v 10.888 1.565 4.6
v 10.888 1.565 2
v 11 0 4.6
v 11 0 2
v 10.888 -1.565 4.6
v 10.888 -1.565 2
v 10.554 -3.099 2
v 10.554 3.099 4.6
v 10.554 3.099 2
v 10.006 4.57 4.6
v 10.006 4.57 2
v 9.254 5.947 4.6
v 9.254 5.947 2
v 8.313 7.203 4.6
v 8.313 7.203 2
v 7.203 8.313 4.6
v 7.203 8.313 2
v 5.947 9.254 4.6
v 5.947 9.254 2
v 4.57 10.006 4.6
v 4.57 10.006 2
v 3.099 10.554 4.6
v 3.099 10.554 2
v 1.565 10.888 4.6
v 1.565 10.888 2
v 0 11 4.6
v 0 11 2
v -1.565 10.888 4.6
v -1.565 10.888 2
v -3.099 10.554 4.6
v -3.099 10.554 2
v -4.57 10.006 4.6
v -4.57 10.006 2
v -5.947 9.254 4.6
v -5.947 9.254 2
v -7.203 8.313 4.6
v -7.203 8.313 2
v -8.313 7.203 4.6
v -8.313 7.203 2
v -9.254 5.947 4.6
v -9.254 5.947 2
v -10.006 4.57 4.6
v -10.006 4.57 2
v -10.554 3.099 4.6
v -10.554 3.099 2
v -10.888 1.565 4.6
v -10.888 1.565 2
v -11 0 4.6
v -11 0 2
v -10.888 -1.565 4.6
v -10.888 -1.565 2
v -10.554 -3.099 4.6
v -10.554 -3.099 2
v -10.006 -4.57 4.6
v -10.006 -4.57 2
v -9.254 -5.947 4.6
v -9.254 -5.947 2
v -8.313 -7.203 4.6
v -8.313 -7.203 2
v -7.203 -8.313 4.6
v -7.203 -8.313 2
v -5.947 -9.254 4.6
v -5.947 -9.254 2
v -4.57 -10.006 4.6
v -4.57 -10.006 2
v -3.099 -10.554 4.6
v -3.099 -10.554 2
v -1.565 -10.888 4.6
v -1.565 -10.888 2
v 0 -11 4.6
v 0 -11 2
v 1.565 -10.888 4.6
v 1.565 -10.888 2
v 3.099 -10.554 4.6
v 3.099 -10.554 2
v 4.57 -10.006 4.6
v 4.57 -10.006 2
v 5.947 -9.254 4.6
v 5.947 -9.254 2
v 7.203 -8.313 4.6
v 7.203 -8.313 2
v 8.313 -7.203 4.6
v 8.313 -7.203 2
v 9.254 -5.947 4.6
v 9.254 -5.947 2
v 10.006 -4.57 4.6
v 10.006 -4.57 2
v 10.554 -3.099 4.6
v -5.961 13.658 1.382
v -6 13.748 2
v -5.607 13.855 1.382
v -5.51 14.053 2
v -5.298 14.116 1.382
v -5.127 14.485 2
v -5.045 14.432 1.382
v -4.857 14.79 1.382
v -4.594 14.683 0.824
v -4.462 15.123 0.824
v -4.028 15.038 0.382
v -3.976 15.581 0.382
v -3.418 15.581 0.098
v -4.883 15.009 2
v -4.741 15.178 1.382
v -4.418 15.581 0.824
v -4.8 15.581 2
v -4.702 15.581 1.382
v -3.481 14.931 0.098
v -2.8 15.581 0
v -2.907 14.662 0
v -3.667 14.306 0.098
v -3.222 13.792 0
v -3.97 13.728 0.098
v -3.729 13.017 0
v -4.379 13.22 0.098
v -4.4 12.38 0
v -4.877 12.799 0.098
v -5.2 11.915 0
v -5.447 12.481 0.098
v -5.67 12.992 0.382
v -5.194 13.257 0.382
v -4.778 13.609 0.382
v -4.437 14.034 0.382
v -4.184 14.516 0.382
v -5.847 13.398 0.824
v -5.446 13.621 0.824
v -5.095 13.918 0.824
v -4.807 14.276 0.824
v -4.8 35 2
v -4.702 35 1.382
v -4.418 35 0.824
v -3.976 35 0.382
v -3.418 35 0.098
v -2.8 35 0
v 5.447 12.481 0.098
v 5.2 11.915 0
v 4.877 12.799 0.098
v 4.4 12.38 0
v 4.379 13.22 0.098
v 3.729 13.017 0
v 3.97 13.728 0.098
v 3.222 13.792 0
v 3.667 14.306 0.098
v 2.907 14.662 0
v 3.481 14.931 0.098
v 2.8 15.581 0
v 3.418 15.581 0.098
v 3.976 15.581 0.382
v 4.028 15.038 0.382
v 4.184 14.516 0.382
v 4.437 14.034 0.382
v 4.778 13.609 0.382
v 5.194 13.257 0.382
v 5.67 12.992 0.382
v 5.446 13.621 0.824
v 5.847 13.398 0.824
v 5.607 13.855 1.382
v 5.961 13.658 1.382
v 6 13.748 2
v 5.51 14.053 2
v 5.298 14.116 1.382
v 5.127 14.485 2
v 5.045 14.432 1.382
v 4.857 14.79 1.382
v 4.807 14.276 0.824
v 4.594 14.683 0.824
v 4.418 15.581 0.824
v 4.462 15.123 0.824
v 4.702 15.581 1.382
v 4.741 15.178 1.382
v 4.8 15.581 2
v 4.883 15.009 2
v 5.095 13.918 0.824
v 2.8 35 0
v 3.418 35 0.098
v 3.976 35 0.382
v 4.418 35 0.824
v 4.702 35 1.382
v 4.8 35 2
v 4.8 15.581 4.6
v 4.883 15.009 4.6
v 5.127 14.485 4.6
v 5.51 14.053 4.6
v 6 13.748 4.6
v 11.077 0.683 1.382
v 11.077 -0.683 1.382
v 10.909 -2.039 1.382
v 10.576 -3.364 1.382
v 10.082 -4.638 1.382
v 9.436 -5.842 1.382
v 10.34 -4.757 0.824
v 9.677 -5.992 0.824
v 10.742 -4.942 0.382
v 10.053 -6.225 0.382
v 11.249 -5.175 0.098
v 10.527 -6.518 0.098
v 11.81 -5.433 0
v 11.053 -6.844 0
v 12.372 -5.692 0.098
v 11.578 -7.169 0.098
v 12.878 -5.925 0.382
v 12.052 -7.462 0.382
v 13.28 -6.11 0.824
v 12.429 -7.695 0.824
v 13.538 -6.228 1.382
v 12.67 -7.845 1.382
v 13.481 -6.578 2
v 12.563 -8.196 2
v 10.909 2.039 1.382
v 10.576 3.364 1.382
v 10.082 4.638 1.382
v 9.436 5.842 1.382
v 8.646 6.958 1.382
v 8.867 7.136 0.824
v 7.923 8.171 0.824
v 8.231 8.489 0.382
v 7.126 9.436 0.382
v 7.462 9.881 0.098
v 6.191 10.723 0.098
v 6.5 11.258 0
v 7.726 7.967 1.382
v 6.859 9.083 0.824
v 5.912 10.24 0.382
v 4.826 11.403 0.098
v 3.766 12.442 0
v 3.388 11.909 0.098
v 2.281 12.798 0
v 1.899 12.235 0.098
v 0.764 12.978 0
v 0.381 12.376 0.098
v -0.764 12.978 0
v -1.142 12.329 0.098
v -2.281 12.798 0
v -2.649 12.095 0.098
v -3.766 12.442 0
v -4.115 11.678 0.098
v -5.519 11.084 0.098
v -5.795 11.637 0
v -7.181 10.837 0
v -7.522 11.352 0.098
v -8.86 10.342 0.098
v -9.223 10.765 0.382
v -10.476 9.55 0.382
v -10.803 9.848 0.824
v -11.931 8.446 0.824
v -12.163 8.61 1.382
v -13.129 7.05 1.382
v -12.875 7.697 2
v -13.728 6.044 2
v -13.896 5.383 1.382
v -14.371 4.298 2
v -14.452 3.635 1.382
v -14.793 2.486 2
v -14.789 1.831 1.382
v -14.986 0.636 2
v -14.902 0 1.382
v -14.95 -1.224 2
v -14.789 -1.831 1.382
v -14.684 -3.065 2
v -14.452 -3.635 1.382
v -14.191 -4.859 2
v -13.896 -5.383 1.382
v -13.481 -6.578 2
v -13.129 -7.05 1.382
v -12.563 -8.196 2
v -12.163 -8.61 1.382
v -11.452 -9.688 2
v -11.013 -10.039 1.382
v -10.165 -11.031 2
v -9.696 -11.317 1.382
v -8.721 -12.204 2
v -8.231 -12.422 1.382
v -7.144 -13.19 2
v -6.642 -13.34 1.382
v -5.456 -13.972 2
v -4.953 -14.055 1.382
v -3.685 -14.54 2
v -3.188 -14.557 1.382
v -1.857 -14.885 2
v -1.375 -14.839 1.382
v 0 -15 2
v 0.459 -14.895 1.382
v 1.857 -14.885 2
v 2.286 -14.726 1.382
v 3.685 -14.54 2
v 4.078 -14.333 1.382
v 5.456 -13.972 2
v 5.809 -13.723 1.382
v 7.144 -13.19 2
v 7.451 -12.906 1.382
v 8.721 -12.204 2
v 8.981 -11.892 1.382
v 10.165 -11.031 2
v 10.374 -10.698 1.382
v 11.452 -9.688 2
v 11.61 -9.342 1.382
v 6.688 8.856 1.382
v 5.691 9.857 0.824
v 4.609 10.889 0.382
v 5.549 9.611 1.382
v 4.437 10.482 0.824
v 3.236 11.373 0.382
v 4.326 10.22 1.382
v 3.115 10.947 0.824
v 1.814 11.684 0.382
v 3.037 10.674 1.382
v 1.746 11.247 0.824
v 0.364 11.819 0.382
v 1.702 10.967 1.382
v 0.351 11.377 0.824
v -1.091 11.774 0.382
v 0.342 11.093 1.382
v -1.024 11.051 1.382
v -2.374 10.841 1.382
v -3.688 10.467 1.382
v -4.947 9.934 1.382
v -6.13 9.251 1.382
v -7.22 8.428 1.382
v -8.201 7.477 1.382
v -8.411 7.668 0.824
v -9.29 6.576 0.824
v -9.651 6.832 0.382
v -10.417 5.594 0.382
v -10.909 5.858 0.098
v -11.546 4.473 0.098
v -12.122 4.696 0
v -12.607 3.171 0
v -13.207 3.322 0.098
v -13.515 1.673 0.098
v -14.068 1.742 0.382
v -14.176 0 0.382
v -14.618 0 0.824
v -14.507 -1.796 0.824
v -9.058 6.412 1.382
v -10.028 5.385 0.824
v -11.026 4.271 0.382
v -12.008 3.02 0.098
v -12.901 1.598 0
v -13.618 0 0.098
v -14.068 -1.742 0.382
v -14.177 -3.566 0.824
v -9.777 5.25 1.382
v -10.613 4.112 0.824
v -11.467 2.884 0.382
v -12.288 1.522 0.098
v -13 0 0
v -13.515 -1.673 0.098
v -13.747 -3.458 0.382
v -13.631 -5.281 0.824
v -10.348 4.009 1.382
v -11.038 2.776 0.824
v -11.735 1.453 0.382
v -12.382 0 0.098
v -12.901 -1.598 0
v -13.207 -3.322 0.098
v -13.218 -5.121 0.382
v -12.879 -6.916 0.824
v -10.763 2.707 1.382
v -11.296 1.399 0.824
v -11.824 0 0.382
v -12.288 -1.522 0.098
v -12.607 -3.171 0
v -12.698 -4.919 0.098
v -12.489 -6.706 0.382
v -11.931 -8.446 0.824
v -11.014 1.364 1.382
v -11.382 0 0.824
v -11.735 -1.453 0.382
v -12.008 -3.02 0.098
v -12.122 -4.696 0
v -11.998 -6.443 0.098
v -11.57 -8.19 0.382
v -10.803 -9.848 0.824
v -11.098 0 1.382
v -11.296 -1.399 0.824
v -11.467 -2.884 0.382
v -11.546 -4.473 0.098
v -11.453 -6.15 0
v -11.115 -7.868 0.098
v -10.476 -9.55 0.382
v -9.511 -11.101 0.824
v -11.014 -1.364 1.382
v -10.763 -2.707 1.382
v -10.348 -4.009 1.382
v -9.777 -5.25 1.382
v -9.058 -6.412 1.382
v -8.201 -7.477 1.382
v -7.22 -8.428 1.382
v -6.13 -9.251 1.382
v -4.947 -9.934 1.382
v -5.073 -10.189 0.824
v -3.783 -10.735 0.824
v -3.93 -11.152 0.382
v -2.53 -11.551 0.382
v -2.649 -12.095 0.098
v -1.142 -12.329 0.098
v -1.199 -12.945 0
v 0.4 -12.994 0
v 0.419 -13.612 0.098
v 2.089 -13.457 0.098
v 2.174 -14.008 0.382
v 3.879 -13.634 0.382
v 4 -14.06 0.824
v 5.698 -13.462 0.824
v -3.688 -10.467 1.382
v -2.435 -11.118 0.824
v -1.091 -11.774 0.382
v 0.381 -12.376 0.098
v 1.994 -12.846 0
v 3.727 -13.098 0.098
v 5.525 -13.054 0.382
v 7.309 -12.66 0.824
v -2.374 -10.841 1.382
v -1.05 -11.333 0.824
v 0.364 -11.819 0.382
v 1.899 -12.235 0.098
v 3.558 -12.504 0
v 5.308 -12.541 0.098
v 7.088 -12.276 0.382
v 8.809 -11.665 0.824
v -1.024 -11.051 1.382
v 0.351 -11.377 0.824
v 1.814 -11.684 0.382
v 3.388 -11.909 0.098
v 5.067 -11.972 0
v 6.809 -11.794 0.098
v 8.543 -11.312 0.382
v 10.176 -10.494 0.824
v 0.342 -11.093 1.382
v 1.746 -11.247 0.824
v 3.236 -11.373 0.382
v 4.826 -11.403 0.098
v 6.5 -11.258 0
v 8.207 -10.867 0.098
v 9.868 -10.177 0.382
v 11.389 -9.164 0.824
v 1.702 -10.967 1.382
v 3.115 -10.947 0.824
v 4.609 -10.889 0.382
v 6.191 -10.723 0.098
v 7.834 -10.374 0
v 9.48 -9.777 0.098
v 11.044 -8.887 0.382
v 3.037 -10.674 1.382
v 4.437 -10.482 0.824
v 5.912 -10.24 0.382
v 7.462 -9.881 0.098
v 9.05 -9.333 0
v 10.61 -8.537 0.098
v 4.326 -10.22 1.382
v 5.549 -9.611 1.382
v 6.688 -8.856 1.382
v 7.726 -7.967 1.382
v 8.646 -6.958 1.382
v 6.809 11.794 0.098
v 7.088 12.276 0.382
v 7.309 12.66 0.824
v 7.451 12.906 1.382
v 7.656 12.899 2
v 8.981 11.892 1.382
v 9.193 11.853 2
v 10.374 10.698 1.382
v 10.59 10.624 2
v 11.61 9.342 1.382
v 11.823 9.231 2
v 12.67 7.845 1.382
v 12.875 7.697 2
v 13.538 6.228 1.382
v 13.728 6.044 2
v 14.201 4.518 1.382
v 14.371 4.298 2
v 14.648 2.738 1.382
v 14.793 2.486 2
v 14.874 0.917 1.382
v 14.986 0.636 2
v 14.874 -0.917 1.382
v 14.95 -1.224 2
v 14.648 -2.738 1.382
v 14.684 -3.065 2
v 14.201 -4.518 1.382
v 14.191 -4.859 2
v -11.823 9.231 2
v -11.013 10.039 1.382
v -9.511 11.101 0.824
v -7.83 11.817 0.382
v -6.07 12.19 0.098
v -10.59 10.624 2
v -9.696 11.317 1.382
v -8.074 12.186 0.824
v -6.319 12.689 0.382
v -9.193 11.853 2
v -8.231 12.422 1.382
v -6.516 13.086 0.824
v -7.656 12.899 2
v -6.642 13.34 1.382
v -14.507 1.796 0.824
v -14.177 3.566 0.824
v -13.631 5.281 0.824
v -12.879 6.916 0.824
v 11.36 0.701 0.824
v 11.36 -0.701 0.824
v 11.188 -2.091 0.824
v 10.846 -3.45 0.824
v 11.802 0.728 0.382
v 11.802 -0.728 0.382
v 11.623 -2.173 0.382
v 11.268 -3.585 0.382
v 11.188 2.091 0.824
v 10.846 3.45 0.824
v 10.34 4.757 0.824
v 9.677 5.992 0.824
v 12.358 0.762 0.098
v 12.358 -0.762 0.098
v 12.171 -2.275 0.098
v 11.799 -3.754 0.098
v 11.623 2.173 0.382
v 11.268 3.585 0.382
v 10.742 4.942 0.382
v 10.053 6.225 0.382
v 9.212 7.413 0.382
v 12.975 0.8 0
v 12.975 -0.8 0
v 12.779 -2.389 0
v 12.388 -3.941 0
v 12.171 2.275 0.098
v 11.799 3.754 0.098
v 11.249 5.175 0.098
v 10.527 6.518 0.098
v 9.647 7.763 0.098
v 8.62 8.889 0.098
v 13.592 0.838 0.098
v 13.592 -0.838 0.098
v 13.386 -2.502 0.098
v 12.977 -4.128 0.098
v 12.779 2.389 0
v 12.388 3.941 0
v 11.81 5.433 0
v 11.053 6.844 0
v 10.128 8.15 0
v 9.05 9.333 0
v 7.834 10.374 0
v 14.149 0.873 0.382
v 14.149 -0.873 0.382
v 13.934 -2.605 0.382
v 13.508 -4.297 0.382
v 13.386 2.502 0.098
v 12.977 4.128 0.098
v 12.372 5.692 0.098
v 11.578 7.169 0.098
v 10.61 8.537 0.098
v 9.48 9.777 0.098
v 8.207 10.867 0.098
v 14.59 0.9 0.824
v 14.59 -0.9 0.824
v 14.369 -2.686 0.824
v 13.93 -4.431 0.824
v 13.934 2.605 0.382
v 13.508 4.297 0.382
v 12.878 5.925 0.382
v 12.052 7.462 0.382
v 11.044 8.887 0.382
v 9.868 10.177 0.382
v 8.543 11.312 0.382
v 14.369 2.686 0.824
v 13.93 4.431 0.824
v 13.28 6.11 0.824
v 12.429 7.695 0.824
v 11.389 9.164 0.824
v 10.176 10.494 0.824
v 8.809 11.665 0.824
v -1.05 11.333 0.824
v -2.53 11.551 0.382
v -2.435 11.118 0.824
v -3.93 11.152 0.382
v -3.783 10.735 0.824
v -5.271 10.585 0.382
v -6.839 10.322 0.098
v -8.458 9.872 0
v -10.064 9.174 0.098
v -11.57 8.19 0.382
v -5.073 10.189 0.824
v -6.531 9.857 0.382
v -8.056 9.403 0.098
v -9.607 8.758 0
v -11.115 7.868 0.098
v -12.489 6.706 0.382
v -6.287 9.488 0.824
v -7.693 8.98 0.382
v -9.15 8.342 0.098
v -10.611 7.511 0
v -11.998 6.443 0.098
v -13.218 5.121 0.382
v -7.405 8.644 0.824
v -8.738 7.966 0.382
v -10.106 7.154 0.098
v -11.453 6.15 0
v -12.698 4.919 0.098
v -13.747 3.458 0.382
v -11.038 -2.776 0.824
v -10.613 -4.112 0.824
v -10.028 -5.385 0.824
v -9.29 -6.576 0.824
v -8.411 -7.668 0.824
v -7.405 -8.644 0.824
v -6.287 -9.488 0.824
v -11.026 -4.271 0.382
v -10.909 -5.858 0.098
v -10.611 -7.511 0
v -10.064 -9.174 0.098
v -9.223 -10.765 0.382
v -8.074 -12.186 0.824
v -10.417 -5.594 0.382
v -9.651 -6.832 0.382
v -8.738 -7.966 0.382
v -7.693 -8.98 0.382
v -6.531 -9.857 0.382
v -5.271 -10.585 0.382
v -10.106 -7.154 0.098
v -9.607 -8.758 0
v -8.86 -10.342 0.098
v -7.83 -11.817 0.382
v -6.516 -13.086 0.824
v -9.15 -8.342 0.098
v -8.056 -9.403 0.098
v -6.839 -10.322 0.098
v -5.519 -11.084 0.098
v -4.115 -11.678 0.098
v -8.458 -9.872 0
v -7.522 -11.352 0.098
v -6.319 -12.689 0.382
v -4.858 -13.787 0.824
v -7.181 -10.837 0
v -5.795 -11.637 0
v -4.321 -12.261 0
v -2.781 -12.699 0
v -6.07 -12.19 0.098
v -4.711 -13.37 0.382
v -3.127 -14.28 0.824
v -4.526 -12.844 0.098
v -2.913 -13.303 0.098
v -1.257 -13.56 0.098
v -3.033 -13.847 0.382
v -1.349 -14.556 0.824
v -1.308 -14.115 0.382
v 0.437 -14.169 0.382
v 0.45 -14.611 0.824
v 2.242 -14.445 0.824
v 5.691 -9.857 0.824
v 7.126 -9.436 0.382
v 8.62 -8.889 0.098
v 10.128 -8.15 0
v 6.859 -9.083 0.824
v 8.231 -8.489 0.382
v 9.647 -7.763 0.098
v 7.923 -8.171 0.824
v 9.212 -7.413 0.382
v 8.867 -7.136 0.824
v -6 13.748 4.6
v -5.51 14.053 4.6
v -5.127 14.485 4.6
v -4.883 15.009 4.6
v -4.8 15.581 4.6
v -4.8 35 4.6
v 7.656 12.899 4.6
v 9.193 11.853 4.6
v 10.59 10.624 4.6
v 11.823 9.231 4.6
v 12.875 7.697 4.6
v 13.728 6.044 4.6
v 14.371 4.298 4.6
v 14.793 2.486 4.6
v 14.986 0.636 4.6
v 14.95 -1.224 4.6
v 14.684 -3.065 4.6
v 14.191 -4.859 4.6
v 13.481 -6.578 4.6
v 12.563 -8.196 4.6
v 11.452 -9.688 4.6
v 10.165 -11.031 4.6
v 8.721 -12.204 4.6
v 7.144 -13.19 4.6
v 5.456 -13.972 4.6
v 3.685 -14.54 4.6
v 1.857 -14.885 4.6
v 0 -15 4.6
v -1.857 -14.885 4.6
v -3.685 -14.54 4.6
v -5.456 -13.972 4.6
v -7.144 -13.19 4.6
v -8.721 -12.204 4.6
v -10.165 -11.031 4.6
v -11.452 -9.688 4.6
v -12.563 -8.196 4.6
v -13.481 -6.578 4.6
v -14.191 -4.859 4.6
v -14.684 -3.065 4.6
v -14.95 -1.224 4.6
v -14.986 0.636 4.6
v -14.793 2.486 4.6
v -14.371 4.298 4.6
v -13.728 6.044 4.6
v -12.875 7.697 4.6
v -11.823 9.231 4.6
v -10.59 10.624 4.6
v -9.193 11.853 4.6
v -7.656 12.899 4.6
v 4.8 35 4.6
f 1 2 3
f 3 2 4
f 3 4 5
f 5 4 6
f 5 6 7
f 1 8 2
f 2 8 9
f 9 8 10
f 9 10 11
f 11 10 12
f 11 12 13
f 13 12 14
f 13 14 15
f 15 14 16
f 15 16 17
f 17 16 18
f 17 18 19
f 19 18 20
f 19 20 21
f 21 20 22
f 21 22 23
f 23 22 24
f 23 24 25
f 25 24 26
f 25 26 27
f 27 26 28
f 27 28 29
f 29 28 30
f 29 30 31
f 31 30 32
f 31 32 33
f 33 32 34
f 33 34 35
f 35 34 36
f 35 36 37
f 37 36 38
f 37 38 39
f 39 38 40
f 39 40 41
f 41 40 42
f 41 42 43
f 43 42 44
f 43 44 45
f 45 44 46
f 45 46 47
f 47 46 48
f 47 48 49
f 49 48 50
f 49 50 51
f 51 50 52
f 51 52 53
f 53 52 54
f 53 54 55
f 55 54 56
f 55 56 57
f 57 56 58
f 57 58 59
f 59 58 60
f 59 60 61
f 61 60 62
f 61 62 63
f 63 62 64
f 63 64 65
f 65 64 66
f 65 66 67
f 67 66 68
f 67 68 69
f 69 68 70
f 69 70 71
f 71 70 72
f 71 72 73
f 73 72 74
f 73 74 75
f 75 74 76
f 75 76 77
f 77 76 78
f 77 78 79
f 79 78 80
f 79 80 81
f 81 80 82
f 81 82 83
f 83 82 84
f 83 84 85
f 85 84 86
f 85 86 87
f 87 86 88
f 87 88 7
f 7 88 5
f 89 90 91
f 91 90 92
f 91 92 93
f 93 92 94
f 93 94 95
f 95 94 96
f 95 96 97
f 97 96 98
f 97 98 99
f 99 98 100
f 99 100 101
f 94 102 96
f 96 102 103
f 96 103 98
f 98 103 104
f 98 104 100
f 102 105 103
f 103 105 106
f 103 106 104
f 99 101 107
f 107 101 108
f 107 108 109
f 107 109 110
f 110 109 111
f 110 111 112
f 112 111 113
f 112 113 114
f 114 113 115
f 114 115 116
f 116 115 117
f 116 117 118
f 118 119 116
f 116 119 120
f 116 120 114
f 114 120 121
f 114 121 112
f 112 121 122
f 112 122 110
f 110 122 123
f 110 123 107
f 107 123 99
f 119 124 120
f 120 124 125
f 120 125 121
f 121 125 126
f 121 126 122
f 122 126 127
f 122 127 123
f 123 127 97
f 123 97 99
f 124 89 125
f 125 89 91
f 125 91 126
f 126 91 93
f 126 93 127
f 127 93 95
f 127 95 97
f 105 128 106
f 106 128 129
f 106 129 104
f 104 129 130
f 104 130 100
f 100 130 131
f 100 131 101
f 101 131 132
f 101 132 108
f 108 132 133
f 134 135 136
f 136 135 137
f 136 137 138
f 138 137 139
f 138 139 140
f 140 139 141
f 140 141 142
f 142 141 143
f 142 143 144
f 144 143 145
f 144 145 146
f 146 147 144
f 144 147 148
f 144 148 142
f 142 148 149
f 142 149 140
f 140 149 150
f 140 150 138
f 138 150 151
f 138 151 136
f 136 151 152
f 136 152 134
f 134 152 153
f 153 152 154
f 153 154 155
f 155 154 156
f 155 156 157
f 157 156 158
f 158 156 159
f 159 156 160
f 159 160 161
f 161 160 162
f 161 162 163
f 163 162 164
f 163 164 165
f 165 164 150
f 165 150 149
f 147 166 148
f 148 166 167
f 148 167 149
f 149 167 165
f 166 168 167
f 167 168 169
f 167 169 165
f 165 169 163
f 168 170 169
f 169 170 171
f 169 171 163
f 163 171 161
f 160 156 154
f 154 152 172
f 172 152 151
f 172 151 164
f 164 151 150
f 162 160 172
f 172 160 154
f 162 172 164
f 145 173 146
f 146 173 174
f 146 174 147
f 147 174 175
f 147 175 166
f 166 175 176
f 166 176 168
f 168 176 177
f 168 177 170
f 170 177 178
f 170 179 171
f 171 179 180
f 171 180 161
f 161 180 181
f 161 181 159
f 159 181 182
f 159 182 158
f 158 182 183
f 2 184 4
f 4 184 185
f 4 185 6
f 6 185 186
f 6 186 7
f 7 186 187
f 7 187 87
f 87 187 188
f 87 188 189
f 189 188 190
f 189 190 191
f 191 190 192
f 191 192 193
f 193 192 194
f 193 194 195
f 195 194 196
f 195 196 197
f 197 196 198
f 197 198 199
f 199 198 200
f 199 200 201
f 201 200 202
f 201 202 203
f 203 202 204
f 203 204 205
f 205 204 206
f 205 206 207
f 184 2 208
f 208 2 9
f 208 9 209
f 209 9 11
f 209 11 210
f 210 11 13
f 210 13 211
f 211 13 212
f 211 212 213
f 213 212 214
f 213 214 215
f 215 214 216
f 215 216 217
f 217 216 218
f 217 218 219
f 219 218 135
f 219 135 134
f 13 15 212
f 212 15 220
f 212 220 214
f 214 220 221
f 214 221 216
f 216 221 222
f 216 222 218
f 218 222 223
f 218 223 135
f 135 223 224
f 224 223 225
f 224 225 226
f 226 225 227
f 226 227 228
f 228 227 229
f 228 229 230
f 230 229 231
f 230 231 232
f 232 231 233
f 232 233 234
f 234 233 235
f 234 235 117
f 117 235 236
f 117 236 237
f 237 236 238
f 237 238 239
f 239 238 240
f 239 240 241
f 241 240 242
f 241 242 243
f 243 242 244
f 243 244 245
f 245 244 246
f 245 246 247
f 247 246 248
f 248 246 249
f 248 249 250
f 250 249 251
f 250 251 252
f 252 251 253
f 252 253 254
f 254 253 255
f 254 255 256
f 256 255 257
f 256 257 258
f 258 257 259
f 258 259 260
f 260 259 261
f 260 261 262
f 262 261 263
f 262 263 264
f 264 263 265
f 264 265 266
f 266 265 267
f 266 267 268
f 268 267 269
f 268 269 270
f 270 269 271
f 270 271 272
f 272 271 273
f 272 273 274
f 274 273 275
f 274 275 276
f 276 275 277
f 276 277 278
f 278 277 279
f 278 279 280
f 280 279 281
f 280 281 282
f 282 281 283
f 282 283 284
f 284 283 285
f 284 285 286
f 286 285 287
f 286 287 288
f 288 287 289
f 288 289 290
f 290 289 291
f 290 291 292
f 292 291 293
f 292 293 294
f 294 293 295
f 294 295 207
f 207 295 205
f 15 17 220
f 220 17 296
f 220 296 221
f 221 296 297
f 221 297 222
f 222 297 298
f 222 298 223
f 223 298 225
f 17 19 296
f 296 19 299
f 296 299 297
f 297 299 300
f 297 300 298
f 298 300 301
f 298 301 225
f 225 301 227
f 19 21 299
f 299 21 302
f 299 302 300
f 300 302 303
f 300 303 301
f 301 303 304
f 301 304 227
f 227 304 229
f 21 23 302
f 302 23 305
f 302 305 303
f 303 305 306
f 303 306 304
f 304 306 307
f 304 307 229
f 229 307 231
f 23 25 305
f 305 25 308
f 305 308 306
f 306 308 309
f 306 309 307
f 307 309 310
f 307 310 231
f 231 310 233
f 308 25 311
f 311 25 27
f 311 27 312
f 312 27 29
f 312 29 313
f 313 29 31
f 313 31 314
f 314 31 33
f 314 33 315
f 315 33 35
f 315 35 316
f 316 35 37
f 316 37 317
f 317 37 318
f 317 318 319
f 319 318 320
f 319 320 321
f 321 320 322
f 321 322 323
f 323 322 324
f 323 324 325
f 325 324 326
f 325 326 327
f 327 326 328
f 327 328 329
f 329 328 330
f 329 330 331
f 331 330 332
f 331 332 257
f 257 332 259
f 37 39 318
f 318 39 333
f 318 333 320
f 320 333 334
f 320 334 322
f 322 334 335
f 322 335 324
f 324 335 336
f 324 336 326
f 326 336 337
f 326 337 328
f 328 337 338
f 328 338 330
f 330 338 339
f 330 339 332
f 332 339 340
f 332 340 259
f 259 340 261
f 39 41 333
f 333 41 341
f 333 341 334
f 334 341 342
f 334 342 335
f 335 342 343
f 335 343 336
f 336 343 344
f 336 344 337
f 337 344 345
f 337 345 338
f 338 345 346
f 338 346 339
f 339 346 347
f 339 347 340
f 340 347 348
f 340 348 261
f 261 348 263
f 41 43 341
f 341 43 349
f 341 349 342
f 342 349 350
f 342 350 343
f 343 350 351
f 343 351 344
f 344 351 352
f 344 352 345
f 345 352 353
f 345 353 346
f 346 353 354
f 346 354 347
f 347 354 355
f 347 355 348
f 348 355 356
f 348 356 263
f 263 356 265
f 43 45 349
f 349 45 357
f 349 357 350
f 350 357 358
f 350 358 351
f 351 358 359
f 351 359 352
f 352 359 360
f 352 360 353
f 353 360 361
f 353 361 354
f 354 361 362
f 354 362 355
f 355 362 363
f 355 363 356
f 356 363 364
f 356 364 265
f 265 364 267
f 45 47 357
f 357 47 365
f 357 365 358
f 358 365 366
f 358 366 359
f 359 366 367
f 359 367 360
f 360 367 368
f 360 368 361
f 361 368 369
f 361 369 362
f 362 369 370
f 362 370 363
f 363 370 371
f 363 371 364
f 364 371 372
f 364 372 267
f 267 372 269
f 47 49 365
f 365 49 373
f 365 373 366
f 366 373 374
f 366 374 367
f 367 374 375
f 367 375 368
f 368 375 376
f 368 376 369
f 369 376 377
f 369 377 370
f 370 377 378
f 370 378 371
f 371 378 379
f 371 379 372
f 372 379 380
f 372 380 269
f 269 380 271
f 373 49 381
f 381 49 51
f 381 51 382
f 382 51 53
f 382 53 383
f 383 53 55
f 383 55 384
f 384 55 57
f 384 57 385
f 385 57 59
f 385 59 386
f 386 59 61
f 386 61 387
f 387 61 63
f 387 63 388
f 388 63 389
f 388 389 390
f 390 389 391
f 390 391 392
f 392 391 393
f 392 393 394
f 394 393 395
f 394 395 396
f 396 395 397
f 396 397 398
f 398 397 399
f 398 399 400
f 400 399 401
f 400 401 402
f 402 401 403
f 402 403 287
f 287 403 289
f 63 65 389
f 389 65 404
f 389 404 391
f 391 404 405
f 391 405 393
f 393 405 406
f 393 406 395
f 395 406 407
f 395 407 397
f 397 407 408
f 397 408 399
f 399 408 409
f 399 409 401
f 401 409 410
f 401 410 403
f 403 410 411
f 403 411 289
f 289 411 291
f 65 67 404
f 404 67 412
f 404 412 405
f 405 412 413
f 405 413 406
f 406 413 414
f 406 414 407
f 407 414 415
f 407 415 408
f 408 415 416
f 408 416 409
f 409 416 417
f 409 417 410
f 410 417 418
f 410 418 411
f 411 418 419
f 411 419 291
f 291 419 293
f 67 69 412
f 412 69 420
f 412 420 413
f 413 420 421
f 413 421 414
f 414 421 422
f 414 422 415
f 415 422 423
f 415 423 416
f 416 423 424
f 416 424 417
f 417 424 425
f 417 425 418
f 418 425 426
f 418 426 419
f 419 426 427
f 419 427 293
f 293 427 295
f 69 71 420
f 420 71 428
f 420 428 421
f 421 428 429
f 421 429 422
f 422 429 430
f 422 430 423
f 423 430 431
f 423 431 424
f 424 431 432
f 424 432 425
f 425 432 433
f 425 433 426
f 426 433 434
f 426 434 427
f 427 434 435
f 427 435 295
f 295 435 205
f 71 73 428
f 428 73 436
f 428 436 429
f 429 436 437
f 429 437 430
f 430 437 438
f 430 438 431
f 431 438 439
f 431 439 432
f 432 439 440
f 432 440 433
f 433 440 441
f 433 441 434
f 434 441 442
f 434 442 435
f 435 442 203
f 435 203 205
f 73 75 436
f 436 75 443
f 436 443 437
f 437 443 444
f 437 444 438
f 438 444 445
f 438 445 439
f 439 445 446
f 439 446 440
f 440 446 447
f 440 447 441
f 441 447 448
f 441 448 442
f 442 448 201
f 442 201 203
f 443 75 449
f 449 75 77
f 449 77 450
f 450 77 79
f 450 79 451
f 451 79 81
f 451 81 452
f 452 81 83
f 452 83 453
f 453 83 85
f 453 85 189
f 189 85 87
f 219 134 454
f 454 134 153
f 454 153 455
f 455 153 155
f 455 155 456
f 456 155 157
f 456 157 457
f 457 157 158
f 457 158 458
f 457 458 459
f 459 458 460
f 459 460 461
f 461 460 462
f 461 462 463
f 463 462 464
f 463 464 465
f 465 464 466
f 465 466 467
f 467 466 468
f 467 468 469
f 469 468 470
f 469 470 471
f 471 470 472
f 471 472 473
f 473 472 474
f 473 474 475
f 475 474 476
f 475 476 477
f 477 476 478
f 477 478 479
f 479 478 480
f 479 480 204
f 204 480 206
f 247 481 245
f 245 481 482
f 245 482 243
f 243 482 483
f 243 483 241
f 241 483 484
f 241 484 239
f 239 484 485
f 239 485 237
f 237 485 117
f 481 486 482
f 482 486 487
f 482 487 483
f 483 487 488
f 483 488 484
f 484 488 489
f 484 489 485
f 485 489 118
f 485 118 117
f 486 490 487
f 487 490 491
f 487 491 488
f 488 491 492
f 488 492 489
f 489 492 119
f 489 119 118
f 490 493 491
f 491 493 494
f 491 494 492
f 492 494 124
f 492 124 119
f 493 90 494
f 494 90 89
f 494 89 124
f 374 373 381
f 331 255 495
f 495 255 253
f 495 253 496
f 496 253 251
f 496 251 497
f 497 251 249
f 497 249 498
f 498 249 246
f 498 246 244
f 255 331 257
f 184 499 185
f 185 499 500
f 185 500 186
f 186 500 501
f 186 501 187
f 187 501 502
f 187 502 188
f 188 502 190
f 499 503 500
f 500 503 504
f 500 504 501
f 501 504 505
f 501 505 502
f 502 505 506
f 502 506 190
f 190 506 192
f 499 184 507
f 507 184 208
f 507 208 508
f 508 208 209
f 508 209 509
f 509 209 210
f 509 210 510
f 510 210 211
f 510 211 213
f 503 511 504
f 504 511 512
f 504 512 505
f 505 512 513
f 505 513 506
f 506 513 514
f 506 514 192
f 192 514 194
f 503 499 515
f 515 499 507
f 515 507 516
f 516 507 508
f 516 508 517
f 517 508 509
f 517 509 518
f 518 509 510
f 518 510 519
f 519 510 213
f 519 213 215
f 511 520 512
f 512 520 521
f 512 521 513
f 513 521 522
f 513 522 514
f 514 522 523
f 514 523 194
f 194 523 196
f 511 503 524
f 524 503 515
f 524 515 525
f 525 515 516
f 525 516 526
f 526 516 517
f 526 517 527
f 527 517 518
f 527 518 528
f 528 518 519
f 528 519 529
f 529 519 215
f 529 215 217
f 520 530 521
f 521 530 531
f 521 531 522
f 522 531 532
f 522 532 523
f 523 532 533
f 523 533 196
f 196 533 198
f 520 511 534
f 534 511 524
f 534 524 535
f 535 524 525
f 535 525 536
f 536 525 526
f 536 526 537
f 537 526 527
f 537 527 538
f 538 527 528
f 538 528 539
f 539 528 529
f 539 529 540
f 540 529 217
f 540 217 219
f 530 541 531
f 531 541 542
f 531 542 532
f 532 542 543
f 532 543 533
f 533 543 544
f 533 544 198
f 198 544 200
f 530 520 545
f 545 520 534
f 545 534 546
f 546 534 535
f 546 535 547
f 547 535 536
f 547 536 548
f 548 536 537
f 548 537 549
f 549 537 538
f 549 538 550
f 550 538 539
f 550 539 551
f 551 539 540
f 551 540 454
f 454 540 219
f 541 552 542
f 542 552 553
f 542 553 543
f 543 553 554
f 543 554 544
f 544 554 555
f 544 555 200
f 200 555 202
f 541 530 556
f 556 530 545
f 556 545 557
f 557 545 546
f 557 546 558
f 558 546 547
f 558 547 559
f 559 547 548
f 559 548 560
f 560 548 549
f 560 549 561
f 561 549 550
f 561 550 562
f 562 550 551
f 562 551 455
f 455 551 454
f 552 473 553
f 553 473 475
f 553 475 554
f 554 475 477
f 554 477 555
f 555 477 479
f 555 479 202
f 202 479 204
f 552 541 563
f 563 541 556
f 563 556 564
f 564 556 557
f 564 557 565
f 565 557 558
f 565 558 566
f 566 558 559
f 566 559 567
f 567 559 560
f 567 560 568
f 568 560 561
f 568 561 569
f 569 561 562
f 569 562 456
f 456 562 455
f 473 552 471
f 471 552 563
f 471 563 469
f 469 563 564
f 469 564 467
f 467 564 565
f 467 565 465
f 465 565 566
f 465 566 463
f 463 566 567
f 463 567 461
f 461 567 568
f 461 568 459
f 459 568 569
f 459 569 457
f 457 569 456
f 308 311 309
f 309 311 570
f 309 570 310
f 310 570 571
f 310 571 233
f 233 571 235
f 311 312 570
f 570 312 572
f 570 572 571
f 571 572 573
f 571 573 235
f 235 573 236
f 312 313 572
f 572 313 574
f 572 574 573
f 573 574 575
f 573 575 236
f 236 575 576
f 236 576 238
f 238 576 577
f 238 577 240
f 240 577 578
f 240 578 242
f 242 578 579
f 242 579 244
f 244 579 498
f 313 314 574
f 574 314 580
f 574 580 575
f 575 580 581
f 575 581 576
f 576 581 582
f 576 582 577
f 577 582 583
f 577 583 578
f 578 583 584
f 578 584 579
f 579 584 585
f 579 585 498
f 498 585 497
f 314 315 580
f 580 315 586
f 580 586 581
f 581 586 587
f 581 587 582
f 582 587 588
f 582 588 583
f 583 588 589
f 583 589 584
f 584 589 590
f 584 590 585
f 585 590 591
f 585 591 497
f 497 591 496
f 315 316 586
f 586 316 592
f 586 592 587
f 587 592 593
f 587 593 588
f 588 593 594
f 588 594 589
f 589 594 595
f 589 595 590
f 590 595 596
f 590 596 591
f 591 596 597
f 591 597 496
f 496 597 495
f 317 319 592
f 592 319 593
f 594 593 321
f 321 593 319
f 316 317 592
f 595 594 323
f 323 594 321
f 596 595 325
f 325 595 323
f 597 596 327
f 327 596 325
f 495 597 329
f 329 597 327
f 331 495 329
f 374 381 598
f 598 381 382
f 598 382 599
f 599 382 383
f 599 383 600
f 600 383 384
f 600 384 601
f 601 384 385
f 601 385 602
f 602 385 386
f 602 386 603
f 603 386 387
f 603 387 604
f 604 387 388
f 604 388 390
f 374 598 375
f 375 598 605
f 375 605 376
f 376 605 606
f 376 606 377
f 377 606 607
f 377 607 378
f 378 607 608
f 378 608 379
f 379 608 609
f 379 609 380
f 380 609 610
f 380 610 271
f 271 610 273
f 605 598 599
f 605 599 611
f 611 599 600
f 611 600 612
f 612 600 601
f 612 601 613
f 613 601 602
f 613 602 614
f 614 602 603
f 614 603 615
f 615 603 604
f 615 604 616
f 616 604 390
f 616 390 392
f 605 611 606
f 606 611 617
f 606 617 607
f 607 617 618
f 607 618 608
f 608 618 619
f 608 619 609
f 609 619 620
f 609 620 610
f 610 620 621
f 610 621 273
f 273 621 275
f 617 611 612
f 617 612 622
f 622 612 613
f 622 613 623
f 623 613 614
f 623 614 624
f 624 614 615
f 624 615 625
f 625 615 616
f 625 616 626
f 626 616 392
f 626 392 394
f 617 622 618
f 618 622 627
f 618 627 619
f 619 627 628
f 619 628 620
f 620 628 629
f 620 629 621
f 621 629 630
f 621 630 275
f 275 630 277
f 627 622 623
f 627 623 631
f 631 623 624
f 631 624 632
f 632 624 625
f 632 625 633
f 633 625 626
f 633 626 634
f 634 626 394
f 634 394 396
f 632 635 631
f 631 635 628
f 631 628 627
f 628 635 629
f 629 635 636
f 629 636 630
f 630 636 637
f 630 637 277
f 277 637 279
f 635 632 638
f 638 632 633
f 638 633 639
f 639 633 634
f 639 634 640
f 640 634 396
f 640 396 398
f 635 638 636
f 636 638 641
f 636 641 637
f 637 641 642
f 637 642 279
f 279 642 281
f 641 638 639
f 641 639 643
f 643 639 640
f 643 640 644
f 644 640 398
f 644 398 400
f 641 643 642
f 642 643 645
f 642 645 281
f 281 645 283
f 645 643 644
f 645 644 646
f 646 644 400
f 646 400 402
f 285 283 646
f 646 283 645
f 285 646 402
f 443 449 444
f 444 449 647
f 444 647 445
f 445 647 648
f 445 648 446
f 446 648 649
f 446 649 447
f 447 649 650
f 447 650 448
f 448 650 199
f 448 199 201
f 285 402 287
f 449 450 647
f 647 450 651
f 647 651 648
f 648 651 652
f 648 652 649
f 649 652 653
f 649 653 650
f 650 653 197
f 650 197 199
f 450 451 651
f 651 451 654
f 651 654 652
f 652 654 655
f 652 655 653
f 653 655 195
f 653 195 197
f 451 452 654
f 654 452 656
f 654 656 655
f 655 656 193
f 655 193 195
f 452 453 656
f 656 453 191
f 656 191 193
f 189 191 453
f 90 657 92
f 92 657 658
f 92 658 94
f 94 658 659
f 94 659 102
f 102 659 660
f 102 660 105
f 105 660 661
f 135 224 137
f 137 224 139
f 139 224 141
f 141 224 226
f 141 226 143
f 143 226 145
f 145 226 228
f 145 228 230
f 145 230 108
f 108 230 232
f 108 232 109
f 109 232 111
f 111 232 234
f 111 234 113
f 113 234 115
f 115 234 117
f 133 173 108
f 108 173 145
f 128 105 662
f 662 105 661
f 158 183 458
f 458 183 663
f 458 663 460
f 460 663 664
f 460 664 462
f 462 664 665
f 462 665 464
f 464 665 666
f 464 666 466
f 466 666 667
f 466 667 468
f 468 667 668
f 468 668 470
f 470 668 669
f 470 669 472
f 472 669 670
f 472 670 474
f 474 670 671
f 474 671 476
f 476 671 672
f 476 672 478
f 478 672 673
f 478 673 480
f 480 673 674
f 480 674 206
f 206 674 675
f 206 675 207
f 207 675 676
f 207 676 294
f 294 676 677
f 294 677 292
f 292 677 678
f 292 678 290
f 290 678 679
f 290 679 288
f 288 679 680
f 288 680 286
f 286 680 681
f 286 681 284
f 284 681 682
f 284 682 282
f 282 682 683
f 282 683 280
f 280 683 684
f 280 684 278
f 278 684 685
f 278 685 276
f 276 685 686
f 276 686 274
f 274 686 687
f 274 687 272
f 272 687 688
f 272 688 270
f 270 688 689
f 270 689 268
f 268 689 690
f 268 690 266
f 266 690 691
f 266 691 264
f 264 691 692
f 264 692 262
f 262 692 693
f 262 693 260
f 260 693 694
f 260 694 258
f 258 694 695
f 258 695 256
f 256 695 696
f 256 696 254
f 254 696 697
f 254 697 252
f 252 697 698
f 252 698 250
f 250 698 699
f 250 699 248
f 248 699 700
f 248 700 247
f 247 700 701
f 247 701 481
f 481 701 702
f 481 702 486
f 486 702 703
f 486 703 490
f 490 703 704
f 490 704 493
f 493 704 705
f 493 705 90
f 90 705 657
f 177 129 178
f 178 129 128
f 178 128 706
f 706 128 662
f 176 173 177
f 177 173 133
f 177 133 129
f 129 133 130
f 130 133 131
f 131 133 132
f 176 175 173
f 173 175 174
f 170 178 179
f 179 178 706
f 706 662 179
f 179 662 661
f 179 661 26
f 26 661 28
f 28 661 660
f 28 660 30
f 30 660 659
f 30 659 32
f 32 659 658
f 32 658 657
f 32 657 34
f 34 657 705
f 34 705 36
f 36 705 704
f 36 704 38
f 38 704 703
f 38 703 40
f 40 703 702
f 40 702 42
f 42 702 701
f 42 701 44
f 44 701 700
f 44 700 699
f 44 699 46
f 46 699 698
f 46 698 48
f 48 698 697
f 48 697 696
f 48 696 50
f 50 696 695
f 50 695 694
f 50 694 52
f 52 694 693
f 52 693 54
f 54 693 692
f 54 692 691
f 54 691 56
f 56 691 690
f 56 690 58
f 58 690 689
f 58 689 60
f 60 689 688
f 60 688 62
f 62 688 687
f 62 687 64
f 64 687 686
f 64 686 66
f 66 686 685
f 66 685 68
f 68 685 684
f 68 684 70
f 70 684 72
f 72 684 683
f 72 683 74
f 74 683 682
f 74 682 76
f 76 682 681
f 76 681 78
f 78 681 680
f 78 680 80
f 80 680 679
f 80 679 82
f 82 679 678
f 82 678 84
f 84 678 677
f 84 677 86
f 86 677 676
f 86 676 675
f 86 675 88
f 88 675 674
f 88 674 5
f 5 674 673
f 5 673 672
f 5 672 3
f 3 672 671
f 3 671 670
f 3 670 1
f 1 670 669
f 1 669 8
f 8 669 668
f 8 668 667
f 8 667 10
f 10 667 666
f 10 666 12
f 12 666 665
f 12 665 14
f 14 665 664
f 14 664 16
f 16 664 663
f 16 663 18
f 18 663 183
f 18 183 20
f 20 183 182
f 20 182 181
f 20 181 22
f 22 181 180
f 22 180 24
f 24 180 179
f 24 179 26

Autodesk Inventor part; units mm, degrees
ref_plane "YZ Plane" through (0, 0, 0) normal (1, 0, 0) x (0, 1, 0)
ref_plane "XZ Plane" through (0, 0, 0) normal (0, 1, 0) x (-1, 0, 0)
ref_plane "XY Plane" through (0, 0, 0) normal (0, 0, 1) x (1, 0, 0)
sketch "Sketch10" plane through (0, 0, 0) normal (0, 0, 1) x (1, 0, 0)
  circle A0 centre (0, 0) radius 11
  circle A1 centre (0, 0) radius 15
  line L0 (0, 11) -> (0, 35)
  line L1 (0, 35) -> (4.8, 35)
  line L2 (4.8, 35) -> (4.8, 11)
  line L3 (4.8, 11) -> (0, 11)
  line L4 (0, 11) -> (24, 11) construction
  line L5 (4.8, 11) -> (4.8, 35)
  line L6 (4.8, 35) -> (-4.8, 35)
  line L7 (-4.8, 35) -> (-4.8, 11)
  line L8 (-4.8, 11) -> (4.8, 11)
  point P0 (-4.8, 14.2113)
  point P1 (4.8, 14.2113)
  dimension "d75" = 22
  dimension "d76" = 30
  dimension "d77" = 24
  dimension "d78" = 90
  dimension "d79" = 4.8
  dimension "d80" = 9.6
extrude "Extrusion8" add sketch "Sketch10" along normal blind 4.6
fillet "Fillet6" radius 2 5 edges at (4.8, 24.6056, 0) (-4.8, 24.6056, 0) (0, -15, 0) (4.8, 14.2113, 2.3) (-4.8, 14.2113, 2.3)
fillet "Fillet7" radius 2 1 edges at (-11, 0, 0)
properties part number "A1 Holder"
